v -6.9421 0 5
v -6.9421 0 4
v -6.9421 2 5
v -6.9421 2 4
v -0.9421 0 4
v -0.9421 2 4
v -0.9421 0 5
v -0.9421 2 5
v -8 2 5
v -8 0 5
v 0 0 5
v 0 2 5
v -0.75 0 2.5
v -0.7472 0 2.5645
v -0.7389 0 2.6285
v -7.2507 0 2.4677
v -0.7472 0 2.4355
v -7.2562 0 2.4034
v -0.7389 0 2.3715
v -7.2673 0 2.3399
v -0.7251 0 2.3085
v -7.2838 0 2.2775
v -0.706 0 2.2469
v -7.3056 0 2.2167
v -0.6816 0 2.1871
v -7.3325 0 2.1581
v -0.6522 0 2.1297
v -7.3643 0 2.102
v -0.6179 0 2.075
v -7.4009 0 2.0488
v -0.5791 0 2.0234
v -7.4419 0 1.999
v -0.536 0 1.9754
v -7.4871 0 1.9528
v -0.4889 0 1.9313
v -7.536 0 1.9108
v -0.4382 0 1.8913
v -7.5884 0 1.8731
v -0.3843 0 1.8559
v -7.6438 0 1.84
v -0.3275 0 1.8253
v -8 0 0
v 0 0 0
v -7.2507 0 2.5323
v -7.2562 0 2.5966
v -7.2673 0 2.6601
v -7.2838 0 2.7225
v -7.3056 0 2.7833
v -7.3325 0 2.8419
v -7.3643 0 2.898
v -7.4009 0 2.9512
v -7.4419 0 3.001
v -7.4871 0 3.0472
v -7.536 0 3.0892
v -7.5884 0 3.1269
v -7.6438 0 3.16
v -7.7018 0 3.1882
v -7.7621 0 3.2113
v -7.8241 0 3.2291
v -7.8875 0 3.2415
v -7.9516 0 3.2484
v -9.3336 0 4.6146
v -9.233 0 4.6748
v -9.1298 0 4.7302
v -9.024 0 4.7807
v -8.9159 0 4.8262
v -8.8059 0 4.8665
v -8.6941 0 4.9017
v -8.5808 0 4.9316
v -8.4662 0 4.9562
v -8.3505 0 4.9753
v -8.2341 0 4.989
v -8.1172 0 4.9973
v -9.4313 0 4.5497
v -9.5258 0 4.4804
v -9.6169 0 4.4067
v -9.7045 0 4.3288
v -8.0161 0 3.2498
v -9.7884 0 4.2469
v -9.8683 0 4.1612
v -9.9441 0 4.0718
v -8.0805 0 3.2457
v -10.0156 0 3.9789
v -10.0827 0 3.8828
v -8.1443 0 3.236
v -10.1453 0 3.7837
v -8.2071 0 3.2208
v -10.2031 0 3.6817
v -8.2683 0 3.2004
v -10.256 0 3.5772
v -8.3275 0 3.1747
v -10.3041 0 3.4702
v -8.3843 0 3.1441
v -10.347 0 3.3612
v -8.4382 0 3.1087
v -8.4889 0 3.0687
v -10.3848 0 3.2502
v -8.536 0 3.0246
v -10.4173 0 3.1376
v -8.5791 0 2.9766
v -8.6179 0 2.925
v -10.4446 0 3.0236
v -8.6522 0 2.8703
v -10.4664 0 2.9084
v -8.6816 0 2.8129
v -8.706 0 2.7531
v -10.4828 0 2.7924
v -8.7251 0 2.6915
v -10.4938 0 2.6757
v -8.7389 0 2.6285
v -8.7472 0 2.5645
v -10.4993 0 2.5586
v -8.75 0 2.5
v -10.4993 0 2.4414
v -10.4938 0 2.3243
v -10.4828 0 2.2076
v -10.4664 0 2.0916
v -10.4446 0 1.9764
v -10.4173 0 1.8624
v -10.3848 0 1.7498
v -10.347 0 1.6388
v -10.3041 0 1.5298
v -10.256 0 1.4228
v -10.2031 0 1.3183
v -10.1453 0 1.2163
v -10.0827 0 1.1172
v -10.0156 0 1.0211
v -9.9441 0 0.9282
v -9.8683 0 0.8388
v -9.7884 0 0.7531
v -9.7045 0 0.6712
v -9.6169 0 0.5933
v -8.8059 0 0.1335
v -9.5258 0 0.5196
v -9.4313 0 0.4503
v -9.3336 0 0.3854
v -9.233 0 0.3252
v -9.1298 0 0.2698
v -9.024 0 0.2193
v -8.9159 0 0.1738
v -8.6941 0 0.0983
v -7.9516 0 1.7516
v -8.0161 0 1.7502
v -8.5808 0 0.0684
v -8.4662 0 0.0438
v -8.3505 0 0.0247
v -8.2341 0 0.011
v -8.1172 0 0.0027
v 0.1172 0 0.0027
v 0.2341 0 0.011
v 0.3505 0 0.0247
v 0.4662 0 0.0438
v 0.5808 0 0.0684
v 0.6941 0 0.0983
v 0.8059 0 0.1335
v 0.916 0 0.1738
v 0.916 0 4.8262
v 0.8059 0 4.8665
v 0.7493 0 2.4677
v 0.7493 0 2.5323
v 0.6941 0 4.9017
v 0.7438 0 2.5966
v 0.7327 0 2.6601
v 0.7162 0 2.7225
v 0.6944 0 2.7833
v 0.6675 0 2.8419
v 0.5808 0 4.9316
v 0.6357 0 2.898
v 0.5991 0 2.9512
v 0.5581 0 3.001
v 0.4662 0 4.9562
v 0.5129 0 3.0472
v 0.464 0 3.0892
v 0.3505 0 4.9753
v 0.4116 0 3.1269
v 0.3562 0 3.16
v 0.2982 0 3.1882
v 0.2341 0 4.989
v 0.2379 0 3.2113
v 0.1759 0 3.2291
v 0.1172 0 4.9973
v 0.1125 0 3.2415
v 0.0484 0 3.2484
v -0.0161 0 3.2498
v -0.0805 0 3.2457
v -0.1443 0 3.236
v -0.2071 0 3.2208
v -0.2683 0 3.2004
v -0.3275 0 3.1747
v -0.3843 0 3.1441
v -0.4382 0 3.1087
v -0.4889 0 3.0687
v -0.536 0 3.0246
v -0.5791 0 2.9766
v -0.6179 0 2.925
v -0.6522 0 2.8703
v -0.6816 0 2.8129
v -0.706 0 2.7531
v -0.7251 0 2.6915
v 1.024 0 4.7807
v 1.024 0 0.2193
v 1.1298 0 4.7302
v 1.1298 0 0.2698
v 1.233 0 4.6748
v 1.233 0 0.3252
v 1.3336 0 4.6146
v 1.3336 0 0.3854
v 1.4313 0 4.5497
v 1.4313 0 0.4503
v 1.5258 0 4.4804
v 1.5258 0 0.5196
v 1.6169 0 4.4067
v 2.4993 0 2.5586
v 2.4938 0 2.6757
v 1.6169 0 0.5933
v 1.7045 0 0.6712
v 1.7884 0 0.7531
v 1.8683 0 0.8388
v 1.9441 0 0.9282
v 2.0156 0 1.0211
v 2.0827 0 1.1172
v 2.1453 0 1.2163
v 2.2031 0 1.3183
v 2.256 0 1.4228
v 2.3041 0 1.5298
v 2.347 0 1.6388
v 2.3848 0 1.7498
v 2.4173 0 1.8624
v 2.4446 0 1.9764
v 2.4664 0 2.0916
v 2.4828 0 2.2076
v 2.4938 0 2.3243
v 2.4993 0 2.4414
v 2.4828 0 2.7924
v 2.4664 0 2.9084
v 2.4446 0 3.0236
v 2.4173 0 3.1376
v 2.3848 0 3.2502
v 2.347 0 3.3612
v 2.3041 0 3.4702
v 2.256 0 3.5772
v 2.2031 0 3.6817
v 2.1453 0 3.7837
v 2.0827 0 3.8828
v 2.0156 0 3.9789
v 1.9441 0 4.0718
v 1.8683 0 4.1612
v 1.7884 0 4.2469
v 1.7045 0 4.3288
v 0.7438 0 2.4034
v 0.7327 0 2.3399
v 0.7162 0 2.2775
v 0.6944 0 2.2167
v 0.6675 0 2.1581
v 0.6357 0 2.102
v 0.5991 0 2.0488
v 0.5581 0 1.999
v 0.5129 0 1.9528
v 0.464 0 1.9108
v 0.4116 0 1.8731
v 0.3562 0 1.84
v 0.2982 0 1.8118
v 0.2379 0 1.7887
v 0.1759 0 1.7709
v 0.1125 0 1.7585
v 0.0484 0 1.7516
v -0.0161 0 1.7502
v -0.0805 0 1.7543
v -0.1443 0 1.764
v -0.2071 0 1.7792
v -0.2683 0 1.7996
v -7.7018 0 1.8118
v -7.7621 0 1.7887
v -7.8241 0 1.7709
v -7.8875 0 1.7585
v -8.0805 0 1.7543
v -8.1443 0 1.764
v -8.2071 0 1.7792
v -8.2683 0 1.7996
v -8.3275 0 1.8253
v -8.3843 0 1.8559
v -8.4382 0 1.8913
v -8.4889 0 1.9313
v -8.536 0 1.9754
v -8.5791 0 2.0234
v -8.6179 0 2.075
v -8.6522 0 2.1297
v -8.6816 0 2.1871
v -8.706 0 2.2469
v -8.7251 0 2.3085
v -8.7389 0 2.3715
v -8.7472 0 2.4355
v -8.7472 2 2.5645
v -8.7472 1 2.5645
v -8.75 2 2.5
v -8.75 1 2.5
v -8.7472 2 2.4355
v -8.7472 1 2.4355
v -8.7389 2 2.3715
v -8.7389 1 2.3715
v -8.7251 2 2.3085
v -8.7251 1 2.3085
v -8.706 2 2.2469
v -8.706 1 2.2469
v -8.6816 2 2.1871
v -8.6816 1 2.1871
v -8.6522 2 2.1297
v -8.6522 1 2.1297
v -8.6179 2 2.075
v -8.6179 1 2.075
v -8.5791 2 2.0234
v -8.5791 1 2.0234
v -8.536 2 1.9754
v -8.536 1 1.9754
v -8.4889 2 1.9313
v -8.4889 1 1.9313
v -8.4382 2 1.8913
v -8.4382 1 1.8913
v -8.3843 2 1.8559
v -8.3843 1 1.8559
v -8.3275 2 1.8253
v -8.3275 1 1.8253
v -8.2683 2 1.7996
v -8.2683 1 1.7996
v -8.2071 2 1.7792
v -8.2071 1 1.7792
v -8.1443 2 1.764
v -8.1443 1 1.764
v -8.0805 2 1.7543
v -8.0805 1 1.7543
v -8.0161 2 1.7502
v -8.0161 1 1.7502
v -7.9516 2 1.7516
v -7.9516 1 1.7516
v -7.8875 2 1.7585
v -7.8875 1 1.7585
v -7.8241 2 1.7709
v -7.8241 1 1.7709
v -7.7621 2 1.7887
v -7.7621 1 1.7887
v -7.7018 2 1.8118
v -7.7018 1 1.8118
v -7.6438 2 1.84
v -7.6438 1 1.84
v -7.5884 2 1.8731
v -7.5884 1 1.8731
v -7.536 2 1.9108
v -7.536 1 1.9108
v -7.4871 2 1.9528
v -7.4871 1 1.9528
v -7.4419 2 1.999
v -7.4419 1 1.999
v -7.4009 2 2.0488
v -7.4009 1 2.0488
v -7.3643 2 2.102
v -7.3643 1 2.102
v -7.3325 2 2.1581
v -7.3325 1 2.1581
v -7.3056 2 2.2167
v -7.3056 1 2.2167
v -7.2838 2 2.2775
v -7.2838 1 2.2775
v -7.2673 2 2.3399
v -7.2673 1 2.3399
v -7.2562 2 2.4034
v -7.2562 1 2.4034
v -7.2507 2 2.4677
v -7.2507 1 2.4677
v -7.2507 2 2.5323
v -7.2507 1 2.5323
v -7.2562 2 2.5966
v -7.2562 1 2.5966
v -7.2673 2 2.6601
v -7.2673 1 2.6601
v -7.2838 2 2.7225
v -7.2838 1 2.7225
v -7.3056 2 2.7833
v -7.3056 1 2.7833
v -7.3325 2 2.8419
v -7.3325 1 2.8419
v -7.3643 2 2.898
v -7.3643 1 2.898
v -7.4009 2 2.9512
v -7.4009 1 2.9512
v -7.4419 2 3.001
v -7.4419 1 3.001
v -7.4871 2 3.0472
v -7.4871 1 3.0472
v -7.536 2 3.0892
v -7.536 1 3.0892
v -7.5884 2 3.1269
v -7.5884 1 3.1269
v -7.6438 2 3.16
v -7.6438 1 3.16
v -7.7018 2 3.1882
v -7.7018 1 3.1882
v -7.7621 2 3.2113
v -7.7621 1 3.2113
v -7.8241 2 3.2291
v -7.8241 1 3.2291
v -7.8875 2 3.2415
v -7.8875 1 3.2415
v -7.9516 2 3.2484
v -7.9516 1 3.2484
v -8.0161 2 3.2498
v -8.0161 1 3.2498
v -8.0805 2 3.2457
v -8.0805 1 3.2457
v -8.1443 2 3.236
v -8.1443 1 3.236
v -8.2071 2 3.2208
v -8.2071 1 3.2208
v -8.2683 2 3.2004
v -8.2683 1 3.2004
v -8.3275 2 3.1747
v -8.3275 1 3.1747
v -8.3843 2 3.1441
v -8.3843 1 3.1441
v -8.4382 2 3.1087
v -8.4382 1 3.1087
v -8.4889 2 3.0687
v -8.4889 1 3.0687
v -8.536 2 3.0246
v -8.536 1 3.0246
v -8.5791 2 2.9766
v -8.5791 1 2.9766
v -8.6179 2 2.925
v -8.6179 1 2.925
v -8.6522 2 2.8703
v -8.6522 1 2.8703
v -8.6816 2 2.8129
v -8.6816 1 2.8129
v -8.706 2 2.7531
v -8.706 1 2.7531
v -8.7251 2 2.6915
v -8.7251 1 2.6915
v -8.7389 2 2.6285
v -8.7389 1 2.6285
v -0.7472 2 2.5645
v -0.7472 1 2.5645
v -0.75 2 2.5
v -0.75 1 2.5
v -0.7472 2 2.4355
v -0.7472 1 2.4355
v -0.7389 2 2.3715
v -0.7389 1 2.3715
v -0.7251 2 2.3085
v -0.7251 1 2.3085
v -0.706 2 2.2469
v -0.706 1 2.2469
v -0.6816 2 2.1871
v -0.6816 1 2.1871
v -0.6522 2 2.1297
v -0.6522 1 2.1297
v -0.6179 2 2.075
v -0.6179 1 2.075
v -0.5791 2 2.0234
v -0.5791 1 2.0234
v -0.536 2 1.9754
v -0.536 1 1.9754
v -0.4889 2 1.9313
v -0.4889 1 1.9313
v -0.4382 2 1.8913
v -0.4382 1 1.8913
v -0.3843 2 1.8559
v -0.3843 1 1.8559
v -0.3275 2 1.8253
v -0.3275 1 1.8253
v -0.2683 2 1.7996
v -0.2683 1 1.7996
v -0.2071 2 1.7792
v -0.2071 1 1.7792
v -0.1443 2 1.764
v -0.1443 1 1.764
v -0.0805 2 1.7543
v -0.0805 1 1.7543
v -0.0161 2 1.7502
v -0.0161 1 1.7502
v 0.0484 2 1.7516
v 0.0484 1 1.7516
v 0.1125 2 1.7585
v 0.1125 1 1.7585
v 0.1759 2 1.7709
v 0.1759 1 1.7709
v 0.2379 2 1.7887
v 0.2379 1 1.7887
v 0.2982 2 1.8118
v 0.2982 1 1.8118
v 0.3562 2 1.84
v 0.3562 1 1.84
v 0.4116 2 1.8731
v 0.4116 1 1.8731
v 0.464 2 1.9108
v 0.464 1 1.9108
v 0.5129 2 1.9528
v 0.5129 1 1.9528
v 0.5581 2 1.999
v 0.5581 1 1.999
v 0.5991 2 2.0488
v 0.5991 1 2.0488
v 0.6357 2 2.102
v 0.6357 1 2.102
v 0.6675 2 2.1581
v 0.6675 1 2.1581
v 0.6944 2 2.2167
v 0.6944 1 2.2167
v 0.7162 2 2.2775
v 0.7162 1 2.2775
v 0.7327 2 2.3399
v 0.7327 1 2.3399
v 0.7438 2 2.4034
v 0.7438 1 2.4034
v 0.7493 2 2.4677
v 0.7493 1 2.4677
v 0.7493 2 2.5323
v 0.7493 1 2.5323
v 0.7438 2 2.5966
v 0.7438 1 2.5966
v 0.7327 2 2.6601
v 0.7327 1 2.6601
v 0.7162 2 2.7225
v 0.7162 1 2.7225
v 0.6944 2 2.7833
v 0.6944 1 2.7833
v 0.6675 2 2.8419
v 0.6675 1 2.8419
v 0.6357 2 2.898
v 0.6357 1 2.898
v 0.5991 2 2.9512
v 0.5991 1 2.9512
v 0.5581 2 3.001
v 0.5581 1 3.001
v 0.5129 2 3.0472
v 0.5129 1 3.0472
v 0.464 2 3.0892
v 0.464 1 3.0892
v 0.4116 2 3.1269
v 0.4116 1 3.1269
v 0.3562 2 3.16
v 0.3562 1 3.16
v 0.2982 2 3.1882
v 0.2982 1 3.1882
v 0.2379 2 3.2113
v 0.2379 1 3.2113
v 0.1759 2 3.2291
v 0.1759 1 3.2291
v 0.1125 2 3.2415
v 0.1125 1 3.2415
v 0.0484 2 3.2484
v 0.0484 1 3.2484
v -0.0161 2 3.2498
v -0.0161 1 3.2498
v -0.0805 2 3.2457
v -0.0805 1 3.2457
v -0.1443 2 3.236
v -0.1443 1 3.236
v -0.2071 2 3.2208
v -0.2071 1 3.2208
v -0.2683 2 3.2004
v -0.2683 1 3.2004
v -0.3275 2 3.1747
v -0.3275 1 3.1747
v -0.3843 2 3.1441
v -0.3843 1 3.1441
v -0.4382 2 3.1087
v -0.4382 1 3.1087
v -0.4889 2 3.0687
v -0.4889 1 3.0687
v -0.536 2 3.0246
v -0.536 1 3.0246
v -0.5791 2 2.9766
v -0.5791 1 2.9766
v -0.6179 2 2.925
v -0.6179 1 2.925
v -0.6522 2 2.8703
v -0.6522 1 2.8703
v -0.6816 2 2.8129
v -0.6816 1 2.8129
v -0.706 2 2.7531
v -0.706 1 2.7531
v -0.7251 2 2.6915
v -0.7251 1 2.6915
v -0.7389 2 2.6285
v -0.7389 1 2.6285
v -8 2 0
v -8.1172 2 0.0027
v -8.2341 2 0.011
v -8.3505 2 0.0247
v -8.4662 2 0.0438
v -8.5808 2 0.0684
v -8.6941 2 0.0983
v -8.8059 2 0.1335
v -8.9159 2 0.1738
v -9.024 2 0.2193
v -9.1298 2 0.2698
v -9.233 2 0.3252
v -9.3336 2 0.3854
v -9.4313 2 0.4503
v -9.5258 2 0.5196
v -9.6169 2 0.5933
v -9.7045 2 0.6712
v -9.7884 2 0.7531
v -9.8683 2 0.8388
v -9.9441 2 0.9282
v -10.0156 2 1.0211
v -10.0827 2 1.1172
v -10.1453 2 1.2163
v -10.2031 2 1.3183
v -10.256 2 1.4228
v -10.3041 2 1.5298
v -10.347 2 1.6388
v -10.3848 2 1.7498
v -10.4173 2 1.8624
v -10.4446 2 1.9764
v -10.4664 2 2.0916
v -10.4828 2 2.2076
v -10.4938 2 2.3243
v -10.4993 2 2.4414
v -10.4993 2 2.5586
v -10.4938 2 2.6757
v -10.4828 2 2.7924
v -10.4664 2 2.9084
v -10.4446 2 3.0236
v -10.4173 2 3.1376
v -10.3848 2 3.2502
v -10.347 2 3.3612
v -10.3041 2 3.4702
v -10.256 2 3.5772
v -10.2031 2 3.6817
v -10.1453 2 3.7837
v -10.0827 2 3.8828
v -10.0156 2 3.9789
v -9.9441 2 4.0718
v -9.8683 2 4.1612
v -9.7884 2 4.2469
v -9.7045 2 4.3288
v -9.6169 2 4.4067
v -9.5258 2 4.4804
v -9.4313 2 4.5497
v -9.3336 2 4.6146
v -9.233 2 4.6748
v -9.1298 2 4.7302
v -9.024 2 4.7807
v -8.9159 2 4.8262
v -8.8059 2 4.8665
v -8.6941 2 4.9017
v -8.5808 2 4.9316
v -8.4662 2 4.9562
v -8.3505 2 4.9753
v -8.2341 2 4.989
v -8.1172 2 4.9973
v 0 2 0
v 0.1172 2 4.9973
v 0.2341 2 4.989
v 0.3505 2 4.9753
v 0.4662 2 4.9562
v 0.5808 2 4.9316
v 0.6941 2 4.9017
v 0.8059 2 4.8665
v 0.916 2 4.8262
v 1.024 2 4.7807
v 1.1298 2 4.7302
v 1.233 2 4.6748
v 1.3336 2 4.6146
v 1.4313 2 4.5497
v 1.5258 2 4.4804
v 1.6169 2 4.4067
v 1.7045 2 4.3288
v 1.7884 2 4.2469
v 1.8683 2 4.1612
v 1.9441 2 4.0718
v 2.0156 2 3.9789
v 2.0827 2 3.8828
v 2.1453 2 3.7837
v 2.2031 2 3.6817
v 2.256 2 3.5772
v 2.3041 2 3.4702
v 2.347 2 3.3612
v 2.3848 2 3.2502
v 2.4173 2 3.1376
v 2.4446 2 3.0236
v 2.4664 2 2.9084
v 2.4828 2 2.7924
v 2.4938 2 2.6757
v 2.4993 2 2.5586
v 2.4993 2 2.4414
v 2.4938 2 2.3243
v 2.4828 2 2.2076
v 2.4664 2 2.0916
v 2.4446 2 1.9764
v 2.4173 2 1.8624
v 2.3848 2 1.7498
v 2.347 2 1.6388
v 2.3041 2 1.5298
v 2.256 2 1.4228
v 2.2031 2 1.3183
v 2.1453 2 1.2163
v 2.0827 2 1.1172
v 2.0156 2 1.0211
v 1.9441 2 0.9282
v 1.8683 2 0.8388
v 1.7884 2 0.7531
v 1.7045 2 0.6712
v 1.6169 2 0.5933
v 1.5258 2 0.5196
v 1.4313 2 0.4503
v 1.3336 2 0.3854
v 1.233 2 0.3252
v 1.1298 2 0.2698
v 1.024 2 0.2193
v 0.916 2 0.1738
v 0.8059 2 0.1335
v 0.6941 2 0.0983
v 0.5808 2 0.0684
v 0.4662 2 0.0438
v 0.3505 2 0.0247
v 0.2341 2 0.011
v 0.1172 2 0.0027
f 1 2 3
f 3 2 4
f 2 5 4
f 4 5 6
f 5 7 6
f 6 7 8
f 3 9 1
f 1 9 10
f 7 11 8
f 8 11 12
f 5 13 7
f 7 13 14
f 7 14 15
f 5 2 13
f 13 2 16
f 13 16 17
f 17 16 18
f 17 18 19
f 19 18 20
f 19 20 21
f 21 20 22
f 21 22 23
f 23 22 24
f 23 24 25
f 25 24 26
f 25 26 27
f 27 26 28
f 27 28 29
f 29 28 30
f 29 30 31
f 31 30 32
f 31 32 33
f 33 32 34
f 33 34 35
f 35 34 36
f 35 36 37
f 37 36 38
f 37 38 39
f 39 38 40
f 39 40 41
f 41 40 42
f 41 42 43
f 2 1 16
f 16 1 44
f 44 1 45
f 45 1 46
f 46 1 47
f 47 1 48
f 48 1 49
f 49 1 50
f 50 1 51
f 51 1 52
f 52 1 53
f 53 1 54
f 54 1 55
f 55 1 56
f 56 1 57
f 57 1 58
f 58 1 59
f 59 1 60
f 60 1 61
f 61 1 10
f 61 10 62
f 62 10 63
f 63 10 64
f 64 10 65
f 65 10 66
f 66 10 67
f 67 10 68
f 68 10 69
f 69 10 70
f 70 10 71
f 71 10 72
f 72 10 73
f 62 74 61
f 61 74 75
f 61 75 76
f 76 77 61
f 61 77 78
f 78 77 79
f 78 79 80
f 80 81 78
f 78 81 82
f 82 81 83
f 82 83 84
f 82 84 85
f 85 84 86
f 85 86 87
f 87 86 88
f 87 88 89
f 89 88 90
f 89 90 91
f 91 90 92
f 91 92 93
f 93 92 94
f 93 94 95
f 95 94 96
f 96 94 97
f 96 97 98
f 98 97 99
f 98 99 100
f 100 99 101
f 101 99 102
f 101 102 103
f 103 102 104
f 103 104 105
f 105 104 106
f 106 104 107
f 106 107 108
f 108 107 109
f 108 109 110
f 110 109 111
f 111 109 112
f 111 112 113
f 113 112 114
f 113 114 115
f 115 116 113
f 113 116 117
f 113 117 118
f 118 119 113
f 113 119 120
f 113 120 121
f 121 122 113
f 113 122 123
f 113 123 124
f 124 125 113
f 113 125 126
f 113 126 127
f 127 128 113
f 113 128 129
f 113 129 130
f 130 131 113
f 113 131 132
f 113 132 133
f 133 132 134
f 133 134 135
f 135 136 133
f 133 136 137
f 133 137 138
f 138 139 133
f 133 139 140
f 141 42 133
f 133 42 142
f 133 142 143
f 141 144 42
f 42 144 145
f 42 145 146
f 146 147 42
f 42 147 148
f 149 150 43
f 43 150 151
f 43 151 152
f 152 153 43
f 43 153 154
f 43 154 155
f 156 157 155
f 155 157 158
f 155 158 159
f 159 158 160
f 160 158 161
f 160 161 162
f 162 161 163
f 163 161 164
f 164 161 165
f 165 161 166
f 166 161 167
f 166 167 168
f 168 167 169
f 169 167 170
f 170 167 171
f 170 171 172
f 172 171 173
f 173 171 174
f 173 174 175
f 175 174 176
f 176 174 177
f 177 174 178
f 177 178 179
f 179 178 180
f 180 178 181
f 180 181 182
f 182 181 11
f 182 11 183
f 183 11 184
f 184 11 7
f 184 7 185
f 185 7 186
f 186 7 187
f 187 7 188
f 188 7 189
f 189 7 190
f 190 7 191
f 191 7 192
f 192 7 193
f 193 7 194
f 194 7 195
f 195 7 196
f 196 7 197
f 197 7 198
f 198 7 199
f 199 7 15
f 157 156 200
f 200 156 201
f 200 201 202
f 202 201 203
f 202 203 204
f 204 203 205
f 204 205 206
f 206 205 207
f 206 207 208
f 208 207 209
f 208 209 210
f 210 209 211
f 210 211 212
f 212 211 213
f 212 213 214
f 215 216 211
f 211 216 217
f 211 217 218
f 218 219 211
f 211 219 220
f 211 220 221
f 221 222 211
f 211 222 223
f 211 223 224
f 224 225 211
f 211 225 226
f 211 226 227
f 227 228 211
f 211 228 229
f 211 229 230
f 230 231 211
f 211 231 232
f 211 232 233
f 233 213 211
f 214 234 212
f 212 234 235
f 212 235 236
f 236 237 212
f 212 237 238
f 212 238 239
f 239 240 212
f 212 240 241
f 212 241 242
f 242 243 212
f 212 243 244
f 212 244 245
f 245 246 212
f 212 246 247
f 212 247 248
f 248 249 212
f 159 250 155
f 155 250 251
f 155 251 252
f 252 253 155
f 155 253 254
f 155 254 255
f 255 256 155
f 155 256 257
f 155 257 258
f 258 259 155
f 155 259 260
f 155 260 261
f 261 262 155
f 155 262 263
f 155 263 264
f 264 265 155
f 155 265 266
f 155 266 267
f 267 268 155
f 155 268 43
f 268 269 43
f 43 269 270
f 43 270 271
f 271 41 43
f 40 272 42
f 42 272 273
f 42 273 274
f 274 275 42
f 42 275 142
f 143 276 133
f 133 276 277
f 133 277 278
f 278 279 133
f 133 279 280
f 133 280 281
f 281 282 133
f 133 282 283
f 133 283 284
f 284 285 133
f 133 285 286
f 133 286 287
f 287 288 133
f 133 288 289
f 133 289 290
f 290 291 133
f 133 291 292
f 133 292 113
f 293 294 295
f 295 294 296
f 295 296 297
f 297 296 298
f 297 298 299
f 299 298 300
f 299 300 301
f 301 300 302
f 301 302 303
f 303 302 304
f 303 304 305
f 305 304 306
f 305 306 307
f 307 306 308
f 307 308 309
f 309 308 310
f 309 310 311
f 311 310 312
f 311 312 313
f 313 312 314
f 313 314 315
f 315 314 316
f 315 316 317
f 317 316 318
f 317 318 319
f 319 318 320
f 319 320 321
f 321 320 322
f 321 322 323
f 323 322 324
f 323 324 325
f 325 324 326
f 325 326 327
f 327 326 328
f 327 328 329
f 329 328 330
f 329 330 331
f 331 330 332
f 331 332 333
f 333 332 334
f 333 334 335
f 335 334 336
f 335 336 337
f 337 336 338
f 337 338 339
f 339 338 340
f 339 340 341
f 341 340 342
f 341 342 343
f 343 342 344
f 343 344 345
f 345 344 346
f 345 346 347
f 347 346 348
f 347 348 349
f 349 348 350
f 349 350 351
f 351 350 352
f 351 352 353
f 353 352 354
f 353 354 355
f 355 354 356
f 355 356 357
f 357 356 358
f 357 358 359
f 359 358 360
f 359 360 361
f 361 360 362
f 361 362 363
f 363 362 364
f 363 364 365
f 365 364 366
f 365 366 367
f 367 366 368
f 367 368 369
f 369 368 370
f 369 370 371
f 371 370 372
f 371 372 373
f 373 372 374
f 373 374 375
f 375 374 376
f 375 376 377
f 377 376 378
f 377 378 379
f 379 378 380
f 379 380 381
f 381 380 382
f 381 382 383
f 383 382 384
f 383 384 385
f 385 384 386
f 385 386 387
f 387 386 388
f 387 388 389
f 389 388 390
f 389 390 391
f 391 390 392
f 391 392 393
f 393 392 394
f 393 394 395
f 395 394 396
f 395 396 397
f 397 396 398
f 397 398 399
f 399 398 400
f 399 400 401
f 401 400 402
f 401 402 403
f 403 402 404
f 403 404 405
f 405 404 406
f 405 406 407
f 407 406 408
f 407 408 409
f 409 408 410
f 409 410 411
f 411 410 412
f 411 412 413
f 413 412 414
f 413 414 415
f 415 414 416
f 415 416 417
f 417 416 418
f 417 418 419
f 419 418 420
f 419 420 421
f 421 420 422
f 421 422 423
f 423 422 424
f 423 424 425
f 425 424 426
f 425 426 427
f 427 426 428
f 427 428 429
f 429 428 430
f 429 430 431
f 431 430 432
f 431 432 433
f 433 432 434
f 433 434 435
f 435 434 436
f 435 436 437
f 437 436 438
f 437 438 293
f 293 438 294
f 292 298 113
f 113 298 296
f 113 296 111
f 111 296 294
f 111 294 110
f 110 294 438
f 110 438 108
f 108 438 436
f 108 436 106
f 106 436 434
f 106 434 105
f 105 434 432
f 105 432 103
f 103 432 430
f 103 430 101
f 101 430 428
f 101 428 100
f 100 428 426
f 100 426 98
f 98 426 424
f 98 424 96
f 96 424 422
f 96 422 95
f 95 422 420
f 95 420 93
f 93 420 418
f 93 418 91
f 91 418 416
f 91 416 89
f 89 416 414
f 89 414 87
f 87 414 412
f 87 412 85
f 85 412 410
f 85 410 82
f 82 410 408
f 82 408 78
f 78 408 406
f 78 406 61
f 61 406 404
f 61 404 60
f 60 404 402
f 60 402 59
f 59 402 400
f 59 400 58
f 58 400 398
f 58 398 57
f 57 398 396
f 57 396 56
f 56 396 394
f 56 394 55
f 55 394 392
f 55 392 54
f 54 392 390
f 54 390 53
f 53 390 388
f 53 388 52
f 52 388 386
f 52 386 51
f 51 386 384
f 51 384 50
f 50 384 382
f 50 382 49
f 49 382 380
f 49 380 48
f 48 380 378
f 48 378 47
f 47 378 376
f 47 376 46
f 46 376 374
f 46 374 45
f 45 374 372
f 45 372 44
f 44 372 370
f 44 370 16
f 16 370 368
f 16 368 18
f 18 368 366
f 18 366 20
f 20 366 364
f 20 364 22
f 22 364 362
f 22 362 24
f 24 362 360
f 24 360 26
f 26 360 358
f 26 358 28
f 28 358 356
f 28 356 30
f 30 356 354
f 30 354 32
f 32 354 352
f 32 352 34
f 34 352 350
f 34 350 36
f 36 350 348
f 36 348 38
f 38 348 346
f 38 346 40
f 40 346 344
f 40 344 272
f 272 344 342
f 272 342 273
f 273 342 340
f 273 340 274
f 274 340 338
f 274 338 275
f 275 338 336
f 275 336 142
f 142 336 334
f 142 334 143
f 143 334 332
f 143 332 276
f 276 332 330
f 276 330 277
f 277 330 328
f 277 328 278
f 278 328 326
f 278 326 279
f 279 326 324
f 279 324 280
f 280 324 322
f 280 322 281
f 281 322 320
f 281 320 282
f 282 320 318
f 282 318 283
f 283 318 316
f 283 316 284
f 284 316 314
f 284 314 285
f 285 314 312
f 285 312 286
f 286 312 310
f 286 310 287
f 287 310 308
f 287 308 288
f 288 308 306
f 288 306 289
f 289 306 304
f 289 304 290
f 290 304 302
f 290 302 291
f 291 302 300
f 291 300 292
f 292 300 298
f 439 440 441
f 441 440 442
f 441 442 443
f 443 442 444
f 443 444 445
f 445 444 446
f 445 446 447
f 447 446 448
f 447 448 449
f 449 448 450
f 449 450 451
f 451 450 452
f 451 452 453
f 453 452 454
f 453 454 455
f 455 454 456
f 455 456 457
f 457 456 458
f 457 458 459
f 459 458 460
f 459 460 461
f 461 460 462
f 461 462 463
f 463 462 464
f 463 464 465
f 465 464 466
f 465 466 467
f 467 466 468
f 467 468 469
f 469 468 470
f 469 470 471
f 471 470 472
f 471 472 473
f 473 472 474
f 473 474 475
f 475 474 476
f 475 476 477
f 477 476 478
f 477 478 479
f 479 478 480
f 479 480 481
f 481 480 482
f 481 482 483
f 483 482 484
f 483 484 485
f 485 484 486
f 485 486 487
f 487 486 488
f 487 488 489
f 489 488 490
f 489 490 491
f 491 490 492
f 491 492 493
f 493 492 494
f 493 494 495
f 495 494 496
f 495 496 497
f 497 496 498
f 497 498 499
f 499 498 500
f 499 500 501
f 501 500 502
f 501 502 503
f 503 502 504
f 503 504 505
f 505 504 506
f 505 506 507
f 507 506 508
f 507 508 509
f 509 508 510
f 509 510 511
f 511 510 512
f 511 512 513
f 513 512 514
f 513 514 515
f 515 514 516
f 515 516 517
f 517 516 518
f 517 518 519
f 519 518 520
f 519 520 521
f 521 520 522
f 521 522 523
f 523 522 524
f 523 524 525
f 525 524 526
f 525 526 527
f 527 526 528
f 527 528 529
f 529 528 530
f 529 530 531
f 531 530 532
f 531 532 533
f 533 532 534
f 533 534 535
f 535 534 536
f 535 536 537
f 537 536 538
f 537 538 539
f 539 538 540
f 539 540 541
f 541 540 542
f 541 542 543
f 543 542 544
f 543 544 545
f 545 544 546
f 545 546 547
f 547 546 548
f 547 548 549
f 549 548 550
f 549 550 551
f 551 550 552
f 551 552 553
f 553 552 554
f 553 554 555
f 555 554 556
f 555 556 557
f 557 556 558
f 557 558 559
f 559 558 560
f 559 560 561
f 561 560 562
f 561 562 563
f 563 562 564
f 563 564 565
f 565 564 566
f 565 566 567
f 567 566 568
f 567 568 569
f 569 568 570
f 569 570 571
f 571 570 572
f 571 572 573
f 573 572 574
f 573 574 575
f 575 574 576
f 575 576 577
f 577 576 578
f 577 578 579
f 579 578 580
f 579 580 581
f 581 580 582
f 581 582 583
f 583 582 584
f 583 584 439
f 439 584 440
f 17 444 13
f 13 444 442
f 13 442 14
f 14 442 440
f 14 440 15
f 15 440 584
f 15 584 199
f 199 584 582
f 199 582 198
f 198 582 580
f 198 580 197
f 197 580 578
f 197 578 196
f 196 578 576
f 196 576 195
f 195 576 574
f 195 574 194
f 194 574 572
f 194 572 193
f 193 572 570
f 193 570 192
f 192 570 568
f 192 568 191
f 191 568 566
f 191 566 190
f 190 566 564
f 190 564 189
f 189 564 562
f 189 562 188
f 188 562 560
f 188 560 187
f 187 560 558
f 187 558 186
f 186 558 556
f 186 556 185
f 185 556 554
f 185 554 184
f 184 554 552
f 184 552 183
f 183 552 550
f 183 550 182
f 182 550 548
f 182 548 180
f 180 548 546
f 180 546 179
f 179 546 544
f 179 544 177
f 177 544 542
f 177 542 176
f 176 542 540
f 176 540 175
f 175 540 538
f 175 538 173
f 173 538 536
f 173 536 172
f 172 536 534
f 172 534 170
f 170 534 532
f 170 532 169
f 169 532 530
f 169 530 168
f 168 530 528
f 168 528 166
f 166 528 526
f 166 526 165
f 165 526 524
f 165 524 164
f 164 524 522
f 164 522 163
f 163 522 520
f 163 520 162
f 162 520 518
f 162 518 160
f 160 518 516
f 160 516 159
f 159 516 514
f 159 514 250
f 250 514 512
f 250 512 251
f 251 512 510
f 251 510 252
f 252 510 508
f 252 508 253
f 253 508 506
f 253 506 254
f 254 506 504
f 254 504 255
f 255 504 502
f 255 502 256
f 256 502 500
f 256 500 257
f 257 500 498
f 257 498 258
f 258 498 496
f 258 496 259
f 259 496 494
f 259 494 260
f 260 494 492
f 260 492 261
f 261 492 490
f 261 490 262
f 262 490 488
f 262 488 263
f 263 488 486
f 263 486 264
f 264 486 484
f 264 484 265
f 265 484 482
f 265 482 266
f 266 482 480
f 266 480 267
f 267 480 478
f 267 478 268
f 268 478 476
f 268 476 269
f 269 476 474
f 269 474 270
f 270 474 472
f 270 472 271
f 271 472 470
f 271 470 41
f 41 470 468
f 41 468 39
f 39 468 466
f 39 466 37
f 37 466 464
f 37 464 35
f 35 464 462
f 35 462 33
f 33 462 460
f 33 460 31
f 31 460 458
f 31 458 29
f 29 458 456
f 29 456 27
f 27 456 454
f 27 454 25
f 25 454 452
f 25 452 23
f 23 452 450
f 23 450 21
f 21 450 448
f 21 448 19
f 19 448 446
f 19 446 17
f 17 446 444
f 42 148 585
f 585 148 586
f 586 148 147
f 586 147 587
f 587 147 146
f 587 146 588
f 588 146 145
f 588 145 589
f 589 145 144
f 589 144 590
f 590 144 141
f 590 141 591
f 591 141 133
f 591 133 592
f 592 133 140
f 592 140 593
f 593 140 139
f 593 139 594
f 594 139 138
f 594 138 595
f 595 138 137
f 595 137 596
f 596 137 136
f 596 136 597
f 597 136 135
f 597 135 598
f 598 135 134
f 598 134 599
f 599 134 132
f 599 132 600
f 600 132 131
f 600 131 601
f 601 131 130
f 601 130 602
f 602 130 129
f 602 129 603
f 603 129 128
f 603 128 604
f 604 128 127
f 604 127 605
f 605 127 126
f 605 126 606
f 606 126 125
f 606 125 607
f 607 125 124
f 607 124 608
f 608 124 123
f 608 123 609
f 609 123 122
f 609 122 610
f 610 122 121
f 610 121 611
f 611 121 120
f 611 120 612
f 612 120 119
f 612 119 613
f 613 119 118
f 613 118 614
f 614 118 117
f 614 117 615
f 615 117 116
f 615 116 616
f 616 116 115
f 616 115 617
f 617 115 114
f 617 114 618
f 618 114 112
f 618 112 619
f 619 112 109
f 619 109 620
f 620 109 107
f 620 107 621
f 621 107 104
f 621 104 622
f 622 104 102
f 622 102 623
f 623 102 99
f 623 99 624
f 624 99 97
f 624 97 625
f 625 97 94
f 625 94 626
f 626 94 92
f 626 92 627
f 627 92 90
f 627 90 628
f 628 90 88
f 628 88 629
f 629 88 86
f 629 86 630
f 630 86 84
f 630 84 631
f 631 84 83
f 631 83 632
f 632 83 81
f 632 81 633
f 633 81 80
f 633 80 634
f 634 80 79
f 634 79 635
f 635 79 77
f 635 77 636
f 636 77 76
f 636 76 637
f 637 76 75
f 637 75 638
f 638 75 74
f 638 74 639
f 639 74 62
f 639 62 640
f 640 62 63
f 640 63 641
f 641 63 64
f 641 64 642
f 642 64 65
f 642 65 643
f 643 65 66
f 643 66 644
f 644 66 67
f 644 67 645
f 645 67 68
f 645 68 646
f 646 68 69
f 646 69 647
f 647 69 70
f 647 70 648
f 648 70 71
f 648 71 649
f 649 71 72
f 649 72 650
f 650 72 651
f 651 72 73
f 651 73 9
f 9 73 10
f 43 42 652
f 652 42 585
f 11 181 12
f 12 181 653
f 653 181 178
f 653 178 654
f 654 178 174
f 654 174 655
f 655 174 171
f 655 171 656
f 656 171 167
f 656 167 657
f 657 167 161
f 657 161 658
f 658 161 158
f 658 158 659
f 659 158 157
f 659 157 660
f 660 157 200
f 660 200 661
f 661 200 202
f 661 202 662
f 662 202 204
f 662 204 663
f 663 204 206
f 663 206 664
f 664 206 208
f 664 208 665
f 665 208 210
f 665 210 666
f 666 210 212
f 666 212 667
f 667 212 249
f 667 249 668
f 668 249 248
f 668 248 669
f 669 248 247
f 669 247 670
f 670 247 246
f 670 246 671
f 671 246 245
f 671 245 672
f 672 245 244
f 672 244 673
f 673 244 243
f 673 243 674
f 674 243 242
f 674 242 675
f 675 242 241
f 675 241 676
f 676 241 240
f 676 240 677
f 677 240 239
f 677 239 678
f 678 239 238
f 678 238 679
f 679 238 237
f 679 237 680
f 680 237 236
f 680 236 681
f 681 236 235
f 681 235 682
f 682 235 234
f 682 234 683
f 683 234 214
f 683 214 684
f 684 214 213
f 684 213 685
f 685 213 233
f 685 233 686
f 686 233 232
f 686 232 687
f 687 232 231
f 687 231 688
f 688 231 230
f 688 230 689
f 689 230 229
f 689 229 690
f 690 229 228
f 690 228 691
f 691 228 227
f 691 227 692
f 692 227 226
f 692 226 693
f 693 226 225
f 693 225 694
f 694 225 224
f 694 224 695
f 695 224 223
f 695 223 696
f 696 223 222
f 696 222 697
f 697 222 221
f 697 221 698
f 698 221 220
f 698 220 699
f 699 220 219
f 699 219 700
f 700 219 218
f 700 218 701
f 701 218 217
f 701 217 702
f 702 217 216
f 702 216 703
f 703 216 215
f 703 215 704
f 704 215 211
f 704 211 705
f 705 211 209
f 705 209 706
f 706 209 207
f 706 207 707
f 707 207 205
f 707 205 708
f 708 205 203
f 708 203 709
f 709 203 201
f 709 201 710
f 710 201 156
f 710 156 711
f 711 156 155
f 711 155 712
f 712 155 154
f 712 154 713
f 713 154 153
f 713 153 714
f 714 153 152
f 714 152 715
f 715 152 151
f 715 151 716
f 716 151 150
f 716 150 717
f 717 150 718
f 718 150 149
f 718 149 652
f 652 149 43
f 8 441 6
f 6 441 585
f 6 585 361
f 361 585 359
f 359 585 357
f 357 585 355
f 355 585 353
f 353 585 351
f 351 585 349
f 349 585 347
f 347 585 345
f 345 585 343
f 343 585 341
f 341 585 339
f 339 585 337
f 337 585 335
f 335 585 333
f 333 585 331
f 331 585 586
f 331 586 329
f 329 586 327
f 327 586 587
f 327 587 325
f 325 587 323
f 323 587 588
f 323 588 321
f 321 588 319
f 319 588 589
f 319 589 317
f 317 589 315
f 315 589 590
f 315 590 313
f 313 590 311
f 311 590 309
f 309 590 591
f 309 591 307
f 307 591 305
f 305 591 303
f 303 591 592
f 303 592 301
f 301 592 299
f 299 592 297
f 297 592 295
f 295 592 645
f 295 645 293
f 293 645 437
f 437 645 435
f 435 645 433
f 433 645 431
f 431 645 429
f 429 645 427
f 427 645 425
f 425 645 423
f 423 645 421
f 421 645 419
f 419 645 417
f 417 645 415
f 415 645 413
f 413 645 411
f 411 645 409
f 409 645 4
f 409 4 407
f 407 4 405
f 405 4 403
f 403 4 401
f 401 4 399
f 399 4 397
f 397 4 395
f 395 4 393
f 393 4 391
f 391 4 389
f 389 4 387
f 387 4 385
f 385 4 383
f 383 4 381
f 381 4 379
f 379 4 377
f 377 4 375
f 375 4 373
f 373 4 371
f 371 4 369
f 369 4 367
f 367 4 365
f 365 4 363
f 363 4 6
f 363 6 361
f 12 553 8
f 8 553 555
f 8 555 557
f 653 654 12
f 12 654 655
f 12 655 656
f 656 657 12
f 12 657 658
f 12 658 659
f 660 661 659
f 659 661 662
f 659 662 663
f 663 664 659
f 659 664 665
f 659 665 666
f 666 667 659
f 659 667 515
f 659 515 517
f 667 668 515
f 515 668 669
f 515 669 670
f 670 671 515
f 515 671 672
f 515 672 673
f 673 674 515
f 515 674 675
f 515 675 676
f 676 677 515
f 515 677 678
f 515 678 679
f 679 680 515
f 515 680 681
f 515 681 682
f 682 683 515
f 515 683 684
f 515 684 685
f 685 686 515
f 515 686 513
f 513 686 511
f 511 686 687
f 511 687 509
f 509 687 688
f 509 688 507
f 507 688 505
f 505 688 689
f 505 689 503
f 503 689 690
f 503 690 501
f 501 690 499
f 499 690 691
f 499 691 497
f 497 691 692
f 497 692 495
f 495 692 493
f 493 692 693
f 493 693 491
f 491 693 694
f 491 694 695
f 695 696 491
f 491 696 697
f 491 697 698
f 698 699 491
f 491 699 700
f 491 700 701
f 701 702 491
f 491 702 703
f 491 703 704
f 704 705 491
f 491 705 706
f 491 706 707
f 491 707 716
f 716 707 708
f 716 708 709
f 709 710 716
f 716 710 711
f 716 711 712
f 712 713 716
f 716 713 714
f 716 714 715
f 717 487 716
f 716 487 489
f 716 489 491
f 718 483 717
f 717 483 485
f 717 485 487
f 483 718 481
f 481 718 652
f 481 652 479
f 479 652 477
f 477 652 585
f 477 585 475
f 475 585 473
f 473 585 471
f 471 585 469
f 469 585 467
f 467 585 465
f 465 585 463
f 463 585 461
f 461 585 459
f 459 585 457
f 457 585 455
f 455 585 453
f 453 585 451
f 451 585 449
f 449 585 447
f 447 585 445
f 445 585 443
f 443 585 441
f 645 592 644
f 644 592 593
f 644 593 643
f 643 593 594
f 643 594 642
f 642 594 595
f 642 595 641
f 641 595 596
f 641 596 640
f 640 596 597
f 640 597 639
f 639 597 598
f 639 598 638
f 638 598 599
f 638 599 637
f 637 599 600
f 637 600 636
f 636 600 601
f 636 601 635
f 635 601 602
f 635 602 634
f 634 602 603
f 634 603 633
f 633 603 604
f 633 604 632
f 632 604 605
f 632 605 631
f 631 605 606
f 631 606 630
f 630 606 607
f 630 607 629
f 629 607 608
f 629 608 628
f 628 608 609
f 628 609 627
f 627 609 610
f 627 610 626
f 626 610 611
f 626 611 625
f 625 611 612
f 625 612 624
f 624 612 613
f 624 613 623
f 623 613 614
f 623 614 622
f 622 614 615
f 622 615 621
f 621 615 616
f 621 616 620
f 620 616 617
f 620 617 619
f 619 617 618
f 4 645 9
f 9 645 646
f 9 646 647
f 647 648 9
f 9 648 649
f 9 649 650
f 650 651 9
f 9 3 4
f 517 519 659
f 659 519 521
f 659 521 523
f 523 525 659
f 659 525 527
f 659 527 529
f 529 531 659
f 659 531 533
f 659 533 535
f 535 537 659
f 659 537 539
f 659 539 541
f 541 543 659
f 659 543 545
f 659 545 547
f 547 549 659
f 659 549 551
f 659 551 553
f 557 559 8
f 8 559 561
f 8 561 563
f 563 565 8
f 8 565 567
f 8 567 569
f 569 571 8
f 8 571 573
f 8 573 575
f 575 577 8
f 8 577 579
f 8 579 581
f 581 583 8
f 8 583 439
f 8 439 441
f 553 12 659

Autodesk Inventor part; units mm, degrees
ref_plane "YZ Plane" through (0, 0, 0) normal (1, 0, 0) x (0, 1, 0)
ref_plane "XZ Plane" through (0, 0, 0) normal (0, 1, 0) x (-1, 0, 0)
ref_plane "XY Plane" through (0, 0, 0) normal (0, 0, 1) x (1, 0, 0)
sketch "Эскиз1" plane through (0, 0, 0) normal (0, 1, 0) x (-1, 0, 0)
  circle A0 centre (0, 2.5) radius 0.75
  line L0 (0.9421, 0) -> (0.9421, 5)
  line L1 (0.9421, 5) -> (0, 5)
  arc A1 (0, 5) -> (0, 0) centre (0, 2.5) ccw
  line L2 (0.9421, 0) -> (0, 0)
  line L3 (0.9421, 0) -> (0.9421, 5)
  line L4 (6.9421, 0) -> (0.9421, 0)
  line L5 (6.9421, 5) -> (6.9421, 0)
  line L6 (0.9421, 5) -> (6.9421, 5)
  circle A2 centre (8, 2.5) radius 0.75
  line L7 (6.9421, 5) -> (6.9421, 0)
  line L8 (8, 0) -> (6.9421, 0)
  arc A3 (8, 0) -> (8, 5) centre (8, 2.5) ccw
  line L9 (8, 5) -> (6.9421, 5)
  line L10 (0.9421, 5) -> (6.9421, 5)
  line L11 (6.9421, 5) -> (6.9421, 4)
  line L12 (6.9421, 4) -> (0.9421, 4)
  line L13 (0.9421, 4) -> (0.9421, 5)
  point P0 (4, 5)
  dimension "d0" = 1
extrude "Выдавливание1" add sketch "Эскиз1" along normal blind 2 contours L2 A1 L1 L0 | L0 L12 L5 L4 | L5 L9 A3 L8
properties part number "КВ33.044.207 - Прижим ремня" material "Пластик АБС"
